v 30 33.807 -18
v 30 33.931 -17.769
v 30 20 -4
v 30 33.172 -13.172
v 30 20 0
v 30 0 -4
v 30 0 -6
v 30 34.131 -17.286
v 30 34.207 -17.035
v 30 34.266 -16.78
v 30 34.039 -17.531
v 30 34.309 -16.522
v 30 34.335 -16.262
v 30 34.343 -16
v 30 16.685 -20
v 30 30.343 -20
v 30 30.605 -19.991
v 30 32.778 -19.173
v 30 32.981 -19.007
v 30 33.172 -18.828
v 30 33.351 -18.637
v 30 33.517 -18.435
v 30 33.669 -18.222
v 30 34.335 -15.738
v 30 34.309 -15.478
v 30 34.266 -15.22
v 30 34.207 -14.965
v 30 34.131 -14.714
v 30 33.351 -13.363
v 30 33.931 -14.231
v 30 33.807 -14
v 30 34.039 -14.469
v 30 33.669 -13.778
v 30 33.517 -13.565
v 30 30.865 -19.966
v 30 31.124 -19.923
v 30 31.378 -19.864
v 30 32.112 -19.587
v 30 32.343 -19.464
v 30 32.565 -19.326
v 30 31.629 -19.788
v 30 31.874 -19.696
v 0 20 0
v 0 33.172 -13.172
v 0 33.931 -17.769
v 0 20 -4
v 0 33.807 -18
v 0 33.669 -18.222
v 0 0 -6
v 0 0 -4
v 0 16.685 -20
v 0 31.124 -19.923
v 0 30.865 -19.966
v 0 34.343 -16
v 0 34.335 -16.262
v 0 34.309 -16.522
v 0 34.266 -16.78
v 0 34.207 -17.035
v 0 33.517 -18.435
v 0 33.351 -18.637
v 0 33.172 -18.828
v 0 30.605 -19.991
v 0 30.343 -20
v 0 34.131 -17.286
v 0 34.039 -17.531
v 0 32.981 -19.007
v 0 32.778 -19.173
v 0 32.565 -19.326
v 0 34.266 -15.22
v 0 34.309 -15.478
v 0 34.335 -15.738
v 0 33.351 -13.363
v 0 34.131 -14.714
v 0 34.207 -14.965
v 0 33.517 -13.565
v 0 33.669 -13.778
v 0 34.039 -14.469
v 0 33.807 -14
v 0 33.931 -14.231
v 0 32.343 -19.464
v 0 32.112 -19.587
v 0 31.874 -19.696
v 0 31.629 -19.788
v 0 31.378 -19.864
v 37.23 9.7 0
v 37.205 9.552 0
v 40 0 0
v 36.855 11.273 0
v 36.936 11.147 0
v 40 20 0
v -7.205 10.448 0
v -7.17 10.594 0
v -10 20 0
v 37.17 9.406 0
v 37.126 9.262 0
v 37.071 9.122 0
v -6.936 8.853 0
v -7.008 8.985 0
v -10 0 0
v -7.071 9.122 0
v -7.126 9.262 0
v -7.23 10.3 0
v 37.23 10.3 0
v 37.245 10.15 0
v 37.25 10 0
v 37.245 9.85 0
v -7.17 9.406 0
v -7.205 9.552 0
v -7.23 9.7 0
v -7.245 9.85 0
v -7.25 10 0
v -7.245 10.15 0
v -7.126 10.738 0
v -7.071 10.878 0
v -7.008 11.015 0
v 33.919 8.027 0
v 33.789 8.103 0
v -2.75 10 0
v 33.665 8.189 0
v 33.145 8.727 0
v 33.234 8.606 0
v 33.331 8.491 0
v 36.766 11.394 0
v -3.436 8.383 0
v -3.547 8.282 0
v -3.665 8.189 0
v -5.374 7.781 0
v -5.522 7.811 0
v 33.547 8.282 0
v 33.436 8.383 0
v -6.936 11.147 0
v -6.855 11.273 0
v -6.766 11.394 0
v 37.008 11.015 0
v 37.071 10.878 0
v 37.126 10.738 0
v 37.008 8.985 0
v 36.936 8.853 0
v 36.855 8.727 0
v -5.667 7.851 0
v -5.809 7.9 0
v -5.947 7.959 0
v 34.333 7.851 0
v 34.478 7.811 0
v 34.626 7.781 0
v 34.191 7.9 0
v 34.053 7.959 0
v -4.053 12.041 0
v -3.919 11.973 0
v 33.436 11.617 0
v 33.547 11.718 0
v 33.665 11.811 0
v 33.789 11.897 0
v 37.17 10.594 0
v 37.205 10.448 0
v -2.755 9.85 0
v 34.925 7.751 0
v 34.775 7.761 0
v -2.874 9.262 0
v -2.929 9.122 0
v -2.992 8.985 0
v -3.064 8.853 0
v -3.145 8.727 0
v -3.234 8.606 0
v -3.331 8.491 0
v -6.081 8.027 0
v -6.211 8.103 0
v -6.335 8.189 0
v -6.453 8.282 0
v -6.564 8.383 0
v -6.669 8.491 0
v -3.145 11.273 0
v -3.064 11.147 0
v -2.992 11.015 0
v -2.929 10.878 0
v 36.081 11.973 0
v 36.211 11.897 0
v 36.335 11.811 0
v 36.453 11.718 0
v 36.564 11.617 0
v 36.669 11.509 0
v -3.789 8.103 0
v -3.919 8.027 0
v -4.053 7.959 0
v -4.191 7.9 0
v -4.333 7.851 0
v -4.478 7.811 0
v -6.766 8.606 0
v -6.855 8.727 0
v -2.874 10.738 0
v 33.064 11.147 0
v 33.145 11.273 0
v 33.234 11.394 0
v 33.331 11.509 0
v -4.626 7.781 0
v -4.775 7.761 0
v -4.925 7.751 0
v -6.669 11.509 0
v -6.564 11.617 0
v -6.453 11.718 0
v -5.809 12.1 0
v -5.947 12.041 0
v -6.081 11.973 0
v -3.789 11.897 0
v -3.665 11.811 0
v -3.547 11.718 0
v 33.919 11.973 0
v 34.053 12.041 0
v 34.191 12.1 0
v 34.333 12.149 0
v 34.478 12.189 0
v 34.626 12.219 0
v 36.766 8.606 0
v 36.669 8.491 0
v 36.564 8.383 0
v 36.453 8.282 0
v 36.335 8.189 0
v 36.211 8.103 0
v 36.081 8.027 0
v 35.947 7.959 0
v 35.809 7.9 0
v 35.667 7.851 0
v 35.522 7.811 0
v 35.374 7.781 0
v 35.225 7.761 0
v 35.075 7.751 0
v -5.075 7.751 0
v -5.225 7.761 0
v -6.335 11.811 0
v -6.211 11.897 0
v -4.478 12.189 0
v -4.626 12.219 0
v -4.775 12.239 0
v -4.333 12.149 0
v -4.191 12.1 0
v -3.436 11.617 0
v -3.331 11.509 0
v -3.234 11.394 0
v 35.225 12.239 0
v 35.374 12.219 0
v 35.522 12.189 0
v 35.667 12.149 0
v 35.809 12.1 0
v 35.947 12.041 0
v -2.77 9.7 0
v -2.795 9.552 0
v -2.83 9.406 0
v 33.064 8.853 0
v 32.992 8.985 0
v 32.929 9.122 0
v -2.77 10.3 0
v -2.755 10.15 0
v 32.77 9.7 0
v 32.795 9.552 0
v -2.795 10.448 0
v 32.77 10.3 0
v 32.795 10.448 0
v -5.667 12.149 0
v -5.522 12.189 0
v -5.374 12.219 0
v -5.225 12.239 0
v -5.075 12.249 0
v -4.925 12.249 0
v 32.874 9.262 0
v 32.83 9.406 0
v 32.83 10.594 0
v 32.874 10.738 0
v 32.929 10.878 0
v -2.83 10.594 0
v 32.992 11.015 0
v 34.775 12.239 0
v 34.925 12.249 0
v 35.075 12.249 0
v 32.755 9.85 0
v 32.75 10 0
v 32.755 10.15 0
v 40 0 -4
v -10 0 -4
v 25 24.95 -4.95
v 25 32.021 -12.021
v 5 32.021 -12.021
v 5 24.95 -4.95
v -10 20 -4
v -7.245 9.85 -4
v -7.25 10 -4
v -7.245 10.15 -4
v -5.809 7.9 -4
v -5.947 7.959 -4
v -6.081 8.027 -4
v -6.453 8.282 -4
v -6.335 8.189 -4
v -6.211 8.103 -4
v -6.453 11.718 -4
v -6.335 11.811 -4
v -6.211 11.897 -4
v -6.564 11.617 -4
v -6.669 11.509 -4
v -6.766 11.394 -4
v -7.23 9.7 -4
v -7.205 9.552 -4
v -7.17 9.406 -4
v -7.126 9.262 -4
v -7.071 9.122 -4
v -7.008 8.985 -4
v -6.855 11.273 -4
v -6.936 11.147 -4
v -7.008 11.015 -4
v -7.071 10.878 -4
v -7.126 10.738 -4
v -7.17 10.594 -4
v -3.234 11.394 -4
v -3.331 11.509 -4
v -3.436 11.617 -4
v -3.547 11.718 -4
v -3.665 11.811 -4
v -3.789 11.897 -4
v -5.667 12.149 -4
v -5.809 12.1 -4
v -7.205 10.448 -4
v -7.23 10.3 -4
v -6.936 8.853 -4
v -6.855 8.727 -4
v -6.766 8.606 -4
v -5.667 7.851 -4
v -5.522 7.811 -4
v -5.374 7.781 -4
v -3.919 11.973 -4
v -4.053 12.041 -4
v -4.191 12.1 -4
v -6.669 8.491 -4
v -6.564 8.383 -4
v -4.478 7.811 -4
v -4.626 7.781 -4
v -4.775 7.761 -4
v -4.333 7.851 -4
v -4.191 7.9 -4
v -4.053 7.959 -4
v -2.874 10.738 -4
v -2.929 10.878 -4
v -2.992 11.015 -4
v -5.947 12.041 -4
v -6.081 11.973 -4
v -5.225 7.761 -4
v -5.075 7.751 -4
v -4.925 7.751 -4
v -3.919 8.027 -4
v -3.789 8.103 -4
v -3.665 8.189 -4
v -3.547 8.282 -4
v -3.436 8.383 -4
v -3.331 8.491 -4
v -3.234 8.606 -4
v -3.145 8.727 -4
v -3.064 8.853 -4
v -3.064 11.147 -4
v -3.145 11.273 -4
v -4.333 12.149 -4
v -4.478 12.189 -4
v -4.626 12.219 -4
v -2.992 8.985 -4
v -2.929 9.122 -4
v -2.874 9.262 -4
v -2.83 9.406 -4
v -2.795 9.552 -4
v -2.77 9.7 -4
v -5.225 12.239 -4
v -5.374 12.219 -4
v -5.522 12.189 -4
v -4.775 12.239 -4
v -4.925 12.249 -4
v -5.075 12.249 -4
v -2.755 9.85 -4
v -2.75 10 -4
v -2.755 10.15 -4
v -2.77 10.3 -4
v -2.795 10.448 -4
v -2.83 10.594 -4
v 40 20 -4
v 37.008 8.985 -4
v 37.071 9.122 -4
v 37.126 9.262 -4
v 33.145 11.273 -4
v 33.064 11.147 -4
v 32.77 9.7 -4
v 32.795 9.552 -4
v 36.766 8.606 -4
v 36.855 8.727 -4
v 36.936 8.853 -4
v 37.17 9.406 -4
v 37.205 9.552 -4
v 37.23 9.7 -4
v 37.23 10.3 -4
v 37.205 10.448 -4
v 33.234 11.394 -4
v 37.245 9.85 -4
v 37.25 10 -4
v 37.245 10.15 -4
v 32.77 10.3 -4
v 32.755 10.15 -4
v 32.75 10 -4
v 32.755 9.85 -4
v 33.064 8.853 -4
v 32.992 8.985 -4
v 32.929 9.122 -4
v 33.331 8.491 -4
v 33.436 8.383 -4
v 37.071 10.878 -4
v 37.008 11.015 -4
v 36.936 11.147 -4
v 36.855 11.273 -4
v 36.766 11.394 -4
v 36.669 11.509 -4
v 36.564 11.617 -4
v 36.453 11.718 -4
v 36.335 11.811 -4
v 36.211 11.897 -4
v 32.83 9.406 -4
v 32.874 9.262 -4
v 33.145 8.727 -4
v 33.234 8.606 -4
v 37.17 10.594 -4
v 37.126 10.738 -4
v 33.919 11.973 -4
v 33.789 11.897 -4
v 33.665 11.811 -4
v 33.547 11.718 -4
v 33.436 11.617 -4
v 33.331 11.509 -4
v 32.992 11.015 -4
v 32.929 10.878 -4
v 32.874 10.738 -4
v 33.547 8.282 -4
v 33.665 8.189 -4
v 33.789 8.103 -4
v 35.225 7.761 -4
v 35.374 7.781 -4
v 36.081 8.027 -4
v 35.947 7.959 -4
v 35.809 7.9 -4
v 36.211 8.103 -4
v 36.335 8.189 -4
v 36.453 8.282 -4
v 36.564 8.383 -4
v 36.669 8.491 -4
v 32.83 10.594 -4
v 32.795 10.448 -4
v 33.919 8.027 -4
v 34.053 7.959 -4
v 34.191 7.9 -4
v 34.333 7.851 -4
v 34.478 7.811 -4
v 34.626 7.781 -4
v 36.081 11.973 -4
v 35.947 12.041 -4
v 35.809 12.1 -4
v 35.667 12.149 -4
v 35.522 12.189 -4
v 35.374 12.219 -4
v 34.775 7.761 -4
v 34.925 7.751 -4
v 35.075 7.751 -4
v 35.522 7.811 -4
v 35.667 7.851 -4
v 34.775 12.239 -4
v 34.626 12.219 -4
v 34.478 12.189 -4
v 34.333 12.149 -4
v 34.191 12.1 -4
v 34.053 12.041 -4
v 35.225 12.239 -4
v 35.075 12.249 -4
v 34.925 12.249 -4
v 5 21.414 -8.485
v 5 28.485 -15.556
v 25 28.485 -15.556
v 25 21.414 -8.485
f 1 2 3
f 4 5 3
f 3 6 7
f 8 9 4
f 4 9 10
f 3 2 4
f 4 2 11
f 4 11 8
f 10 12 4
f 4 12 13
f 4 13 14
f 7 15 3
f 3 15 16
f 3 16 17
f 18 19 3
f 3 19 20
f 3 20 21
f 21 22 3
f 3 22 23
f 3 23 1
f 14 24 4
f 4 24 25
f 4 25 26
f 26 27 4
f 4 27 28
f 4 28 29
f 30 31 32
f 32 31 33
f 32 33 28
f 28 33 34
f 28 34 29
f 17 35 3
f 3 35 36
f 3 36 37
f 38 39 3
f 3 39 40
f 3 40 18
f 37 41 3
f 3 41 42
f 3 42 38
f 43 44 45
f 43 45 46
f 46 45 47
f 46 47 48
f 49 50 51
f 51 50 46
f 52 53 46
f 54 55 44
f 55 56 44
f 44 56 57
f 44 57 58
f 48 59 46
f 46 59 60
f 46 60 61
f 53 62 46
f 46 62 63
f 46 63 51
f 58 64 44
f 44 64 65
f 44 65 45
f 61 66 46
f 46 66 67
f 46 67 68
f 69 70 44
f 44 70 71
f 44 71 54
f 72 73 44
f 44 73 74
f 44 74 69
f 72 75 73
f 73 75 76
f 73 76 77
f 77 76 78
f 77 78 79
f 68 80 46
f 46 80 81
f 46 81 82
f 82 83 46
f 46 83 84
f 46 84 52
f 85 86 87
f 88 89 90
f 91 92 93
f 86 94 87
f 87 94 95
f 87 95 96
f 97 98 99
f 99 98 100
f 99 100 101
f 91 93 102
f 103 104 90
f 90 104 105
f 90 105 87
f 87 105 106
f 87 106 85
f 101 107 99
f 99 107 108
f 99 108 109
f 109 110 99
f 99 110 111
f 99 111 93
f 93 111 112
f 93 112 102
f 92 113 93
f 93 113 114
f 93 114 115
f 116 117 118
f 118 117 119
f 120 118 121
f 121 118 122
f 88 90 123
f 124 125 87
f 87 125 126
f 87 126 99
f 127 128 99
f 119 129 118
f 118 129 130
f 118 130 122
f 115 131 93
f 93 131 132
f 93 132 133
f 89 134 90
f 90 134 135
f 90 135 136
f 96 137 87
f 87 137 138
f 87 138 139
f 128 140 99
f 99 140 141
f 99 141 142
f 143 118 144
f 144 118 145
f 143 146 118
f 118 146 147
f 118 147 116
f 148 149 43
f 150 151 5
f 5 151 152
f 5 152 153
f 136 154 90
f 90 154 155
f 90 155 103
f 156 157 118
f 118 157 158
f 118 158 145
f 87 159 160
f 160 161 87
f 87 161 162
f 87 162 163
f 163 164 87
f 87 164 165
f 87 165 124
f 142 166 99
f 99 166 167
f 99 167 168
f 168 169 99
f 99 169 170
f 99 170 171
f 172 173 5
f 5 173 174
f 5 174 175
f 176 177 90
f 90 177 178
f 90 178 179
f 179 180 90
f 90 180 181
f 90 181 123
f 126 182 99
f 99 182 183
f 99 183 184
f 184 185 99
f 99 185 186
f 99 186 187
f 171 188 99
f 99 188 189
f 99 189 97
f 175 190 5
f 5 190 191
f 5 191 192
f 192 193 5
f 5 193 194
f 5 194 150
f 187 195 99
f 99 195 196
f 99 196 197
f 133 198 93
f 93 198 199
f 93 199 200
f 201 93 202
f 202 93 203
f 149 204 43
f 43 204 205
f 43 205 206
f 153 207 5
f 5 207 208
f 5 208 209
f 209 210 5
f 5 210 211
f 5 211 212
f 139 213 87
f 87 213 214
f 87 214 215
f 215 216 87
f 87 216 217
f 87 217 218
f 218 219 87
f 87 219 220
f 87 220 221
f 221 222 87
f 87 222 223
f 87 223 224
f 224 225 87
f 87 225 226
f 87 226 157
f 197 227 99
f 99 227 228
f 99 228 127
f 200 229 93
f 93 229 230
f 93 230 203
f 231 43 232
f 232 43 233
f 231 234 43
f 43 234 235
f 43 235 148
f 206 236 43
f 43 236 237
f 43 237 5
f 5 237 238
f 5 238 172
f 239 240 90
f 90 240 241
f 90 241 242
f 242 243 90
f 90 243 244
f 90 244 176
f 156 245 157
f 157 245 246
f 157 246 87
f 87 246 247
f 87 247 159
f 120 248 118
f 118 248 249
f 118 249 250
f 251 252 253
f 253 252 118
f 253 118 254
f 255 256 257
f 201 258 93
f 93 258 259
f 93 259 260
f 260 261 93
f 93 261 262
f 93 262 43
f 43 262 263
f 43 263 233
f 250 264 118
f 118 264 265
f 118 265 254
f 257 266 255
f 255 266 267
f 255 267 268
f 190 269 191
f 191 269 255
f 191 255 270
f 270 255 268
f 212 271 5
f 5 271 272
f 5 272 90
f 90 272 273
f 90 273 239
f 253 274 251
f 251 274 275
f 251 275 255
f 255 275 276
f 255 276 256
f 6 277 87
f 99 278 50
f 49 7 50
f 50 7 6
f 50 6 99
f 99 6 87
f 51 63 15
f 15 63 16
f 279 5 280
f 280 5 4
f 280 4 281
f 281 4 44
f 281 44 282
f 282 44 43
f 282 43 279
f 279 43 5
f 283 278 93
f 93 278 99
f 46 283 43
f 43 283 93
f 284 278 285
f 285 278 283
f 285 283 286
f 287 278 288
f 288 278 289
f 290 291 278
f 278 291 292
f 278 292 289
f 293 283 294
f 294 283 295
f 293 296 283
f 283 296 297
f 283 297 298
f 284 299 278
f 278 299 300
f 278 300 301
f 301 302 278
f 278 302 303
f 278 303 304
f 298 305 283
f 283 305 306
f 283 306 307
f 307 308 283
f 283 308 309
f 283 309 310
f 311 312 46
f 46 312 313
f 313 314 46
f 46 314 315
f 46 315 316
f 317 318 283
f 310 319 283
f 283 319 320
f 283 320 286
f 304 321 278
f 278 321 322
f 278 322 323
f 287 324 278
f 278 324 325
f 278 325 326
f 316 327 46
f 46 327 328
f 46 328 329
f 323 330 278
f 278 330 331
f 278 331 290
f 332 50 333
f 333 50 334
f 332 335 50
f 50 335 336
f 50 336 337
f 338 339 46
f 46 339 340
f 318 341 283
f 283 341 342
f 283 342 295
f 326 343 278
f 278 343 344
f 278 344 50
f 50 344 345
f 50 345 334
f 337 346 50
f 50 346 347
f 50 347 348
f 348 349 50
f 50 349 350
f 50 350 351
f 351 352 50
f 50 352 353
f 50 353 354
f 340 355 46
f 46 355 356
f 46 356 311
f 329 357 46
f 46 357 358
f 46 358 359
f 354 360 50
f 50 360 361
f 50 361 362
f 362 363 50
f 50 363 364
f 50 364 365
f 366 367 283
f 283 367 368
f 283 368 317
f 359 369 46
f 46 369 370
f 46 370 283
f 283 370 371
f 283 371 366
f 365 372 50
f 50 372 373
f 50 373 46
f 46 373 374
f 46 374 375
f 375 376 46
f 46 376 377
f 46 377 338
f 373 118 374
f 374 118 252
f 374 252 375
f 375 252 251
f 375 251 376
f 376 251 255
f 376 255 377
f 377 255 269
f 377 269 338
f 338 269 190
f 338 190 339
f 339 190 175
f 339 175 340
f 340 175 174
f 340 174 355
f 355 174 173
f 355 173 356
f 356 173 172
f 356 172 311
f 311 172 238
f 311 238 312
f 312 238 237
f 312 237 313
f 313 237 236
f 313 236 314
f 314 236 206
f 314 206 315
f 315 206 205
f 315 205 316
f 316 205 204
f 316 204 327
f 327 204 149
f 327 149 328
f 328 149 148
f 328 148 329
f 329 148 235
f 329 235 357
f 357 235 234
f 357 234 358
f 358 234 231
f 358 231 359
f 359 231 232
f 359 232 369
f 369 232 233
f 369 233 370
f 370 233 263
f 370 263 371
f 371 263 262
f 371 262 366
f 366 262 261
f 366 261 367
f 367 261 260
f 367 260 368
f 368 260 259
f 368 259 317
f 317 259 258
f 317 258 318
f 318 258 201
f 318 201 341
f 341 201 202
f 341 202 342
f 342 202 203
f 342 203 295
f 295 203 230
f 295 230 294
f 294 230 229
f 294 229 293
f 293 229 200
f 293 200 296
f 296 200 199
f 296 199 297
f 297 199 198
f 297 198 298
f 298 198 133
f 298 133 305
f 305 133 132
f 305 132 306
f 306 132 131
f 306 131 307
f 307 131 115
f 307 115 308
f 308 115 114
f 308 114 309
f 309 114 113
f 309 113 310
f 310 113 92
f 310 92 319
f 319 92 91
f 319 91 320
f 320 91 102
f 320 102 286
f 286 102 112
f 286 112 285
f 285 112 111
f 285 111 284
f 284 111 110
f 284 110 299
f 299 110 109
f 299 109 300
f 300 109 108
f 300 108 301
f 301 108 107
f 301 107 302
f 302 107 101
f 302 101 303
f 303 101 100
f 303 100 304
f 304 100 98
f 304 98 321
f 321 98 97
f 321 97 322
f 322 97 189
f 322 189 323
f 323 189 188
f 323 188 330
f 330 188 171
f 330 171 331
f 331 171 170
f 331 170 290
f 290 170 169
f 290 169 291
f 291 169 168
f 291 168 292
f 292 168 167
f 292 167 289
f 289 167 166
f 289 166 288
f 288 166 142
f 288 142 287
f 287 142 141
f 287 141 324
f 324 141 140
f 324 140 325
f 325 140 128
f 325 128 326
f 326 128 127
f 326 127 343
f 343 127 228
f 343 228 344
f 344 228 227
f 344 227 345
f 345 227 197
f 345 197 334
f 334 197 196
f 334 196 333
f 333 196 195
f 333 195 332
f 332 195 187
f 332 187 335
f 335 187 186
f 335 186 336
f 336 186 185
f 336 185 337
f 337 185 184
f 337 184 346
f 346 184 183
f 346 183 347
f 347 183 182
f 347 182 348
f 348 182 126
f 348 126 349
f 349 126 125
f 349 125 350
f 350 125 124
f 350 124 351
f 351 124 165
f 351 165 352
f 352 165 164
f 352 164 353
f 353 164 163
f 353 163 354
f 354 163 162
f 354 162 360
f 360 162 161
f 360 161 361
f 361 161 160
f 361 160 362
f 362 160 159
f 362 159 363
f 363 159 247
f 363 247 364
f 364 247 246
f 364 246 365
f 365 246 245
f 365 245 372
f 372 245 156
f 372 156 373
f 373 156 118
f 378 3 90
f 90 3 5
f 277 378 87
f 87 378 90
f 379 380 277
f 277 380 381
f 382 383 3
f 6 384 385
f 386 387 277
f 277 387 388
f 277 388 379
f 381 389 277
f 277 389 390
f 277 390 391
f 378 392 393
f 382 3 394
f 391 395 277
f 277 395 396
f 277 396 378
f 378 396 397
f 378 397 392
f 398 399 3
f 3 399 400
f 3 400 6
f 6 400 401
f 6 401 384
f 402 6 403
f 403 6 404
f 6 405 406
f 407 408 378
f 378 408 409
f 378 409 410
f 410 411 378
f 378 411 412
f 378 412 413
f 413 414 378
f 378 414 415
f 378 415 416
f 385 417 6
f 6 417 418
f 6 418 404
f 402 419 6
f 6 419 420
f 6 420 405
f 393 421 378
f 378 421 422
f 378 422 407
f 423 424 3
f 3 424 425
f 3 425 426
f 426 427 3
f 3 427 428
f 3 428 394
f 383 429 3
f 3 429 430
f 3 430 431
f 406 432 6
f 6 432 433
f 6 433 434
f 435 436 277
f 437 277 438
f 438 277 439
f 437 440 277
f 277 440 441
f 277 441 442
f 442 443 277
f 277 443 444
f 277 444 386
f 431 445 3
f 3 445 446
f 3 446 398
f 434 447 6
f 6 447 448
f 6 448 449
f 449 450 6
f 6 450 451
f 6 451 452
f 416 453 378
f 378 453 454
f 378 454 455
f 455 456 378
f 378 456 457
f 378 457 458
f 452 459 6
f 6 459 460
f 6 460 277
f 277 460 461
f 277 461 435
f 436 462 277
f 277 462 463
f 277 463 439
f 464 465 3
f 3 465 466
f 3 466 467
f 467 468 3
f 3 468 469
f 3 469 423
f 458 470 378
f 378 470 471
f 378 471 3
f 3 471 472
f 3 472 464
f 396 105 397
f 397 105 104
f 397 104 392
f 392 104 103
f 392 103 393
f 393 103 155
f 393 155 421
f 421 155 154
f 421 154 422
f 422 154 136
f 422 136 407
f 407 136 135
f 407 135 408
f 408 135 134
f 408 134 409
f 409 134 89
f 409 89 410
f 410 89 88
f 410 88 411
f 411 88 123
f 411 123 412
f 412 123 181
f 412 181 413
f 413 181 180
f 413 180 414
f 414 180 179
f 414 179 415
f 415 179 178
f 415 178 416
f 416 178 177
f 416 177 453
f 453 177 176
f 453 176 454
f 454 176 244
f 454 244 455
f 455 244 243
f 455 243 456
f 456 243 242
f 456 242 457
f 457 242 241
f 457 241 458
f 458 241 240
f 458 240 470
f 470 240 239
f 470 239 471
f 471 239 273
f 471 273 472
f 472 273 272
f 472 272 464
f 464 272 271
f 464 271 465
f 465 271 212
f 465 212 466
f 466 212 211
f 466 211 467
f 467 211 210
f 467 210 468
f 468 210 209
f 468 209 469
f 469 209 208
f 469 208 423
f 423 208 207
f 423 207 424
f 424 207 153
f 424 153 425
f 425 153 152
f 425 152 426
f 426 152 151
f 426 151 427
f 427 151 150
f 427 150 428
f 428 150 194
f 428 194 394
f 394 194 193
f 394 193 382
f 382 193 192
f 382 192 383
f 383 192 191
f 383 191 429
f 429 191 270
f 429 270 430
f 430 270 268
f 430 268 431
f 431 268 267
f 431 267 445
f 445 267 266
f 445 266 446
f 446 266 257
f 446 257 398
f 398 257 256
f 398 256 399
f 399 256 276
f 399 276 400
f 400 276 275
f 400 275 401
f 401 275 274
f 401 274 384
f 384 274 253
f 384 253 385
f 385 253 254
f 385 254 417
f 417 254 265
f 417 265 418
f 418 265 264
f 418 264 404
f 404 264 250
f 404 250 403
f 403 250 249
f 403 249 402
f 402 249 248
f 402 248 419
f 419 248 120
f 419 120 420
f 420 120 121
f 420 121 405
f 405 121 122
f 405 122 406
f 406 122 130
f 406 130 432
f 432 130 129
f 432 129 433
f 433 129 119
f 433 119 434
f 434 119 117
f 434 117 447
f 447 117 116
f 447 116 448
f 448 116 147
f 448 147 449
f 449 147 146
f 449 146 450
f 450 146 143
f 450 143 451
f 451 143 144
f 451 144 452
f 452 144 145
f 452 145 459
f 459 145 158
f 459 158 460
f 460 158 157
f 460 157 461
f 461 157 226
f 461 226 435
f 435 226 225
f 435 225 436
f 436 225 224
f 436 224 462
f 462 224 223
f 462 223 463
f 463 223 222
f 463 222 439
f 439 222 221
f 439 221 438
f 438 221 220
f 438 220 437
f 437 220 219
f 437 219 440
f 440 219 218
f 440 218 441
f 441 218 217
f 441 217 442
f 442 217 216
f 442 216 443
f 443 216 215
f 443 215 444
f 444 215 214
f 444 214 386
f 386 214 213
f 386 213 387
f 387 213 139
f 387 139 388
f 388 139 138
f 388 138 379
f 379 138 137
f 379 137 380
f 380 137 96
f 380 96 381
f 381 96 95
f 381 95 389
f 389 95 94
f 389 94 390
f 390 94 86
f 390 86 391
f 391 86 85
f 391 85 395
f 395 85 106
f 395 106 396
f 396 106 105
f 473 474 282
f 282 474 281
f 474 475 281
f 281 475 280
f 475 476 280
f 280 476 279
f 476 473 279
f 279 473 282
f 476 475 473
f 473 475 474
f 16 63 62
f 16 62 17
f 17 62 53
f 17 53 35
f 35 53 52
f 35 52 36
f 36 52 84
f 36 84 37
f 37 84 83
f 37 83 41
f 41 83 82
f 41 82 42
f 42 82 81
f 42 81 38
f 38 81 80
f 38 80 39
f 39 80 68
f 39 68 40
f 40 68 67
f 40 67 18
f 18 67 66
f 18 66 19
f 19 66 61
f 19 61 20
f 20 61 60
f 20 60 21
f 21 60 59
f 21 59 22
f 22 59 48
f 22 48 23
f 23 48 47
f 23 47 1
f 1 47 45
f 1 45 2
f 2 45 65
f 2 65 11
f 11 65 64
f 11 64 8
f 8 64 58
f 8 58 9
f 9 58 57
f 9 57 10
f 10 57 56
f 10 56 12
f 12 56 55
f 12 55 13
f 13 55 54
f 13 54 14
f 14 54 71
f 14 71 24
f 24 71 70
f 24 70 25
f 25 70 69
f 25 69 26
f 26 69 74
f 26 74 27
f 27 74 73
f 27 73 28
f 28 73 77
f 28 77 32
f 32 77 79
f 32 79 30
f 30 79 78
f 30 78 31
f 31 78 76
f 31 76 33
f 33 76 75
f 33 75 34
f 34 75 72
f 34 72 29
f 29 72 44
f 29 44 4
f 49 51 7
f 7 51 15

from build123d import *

# Parameters (mm, degrees)
BOSS_EXTRUDE1_DEPTH = 30
SKETCH2_W           = 10
SKETCH2_H           = 20
SKETCH2_R           = 2.25
BOSS_EXTRUDE2_DEPTH = 4
SKETCH3_W           = 20
SKETCH3_H           = 10
CUT_EXTRUDE1_DEPTH  = 5
FILLET1_R           = 4
CHAMFER1_SIZE       = 14
CHAMFER1_SIZE2      = 16.684550296


with BuildPart() as part:
    # Sketch1 → Boss-Extrude1 (new body)
    with BuildSketch(Plane(origin=(0, 0, 0), x_dir=(0, 0, -1), z_dir=(1, 0, 0))):
        Polygon((0, 20), (20, 40), (20, 20), (20, 0), (0, 0), align=None)
    extrude(amount=BOSS_EXTRUDE1_DEPTH)

    # Sketch2 → Boss-Extrude2 (add)
    with BuildSketch(Plane.XY):
        with Locations((-5, 10)):
            Rectangle(SKETCH2_W, SKETCH2_H)
        with Locations((-5, 10)):
            Circle(SKETCH2_R, mode=Mode.SUBTRACT)
        with Locations((35, 10)):
            Rectangle(SKETCH2_W, SKETCH2_H)
        with Locations((35, 10)):
            Circle(SKETCH2_R, mode=Mode.SUBTRACT)
    extrude(amount=-BOSS_EXTRUDE2_DEPTH)

    # Sketch3 → Cut-Extrude1 (cut)
    with BuildSketch(Plane(origin=(0, 10, 10), x_dir=(1, 0, 0), z_dir=(0, 0.707106781, 0.707106781))):
        with Locations((15, 26.142135624)):
            Rectangle(SKETCH3_W, SKETCH3_H)
    extrude(amount=-CUT_EXTRUDE1_DEPTH, mode=Mode.SUBTRACT)

    # Fillet1
    fillet1_edges = [part.edges().sort_by_distance(p)[0] for p in [
        (15, 40, -20),
    ]]
    fillet(fillet1_edges, radius=FILLET1_R)

    # Chamfer1
    chamfer1_edges = [part.edges().sort_by_distance(p)[0] for p in [
        (15, 0, -20),
    ]]
    chamfer1_side = [part.faces().sort_by_distance(p)[0] for p in [
        (15, 0, -9.058823529),
    ]]
    chamfer(chamfer1_edges, length=CHAMFER1_SIZE, length2=CHAMFER1_SIZE2, reference=chamfer1_side[0])


solid = part.part
